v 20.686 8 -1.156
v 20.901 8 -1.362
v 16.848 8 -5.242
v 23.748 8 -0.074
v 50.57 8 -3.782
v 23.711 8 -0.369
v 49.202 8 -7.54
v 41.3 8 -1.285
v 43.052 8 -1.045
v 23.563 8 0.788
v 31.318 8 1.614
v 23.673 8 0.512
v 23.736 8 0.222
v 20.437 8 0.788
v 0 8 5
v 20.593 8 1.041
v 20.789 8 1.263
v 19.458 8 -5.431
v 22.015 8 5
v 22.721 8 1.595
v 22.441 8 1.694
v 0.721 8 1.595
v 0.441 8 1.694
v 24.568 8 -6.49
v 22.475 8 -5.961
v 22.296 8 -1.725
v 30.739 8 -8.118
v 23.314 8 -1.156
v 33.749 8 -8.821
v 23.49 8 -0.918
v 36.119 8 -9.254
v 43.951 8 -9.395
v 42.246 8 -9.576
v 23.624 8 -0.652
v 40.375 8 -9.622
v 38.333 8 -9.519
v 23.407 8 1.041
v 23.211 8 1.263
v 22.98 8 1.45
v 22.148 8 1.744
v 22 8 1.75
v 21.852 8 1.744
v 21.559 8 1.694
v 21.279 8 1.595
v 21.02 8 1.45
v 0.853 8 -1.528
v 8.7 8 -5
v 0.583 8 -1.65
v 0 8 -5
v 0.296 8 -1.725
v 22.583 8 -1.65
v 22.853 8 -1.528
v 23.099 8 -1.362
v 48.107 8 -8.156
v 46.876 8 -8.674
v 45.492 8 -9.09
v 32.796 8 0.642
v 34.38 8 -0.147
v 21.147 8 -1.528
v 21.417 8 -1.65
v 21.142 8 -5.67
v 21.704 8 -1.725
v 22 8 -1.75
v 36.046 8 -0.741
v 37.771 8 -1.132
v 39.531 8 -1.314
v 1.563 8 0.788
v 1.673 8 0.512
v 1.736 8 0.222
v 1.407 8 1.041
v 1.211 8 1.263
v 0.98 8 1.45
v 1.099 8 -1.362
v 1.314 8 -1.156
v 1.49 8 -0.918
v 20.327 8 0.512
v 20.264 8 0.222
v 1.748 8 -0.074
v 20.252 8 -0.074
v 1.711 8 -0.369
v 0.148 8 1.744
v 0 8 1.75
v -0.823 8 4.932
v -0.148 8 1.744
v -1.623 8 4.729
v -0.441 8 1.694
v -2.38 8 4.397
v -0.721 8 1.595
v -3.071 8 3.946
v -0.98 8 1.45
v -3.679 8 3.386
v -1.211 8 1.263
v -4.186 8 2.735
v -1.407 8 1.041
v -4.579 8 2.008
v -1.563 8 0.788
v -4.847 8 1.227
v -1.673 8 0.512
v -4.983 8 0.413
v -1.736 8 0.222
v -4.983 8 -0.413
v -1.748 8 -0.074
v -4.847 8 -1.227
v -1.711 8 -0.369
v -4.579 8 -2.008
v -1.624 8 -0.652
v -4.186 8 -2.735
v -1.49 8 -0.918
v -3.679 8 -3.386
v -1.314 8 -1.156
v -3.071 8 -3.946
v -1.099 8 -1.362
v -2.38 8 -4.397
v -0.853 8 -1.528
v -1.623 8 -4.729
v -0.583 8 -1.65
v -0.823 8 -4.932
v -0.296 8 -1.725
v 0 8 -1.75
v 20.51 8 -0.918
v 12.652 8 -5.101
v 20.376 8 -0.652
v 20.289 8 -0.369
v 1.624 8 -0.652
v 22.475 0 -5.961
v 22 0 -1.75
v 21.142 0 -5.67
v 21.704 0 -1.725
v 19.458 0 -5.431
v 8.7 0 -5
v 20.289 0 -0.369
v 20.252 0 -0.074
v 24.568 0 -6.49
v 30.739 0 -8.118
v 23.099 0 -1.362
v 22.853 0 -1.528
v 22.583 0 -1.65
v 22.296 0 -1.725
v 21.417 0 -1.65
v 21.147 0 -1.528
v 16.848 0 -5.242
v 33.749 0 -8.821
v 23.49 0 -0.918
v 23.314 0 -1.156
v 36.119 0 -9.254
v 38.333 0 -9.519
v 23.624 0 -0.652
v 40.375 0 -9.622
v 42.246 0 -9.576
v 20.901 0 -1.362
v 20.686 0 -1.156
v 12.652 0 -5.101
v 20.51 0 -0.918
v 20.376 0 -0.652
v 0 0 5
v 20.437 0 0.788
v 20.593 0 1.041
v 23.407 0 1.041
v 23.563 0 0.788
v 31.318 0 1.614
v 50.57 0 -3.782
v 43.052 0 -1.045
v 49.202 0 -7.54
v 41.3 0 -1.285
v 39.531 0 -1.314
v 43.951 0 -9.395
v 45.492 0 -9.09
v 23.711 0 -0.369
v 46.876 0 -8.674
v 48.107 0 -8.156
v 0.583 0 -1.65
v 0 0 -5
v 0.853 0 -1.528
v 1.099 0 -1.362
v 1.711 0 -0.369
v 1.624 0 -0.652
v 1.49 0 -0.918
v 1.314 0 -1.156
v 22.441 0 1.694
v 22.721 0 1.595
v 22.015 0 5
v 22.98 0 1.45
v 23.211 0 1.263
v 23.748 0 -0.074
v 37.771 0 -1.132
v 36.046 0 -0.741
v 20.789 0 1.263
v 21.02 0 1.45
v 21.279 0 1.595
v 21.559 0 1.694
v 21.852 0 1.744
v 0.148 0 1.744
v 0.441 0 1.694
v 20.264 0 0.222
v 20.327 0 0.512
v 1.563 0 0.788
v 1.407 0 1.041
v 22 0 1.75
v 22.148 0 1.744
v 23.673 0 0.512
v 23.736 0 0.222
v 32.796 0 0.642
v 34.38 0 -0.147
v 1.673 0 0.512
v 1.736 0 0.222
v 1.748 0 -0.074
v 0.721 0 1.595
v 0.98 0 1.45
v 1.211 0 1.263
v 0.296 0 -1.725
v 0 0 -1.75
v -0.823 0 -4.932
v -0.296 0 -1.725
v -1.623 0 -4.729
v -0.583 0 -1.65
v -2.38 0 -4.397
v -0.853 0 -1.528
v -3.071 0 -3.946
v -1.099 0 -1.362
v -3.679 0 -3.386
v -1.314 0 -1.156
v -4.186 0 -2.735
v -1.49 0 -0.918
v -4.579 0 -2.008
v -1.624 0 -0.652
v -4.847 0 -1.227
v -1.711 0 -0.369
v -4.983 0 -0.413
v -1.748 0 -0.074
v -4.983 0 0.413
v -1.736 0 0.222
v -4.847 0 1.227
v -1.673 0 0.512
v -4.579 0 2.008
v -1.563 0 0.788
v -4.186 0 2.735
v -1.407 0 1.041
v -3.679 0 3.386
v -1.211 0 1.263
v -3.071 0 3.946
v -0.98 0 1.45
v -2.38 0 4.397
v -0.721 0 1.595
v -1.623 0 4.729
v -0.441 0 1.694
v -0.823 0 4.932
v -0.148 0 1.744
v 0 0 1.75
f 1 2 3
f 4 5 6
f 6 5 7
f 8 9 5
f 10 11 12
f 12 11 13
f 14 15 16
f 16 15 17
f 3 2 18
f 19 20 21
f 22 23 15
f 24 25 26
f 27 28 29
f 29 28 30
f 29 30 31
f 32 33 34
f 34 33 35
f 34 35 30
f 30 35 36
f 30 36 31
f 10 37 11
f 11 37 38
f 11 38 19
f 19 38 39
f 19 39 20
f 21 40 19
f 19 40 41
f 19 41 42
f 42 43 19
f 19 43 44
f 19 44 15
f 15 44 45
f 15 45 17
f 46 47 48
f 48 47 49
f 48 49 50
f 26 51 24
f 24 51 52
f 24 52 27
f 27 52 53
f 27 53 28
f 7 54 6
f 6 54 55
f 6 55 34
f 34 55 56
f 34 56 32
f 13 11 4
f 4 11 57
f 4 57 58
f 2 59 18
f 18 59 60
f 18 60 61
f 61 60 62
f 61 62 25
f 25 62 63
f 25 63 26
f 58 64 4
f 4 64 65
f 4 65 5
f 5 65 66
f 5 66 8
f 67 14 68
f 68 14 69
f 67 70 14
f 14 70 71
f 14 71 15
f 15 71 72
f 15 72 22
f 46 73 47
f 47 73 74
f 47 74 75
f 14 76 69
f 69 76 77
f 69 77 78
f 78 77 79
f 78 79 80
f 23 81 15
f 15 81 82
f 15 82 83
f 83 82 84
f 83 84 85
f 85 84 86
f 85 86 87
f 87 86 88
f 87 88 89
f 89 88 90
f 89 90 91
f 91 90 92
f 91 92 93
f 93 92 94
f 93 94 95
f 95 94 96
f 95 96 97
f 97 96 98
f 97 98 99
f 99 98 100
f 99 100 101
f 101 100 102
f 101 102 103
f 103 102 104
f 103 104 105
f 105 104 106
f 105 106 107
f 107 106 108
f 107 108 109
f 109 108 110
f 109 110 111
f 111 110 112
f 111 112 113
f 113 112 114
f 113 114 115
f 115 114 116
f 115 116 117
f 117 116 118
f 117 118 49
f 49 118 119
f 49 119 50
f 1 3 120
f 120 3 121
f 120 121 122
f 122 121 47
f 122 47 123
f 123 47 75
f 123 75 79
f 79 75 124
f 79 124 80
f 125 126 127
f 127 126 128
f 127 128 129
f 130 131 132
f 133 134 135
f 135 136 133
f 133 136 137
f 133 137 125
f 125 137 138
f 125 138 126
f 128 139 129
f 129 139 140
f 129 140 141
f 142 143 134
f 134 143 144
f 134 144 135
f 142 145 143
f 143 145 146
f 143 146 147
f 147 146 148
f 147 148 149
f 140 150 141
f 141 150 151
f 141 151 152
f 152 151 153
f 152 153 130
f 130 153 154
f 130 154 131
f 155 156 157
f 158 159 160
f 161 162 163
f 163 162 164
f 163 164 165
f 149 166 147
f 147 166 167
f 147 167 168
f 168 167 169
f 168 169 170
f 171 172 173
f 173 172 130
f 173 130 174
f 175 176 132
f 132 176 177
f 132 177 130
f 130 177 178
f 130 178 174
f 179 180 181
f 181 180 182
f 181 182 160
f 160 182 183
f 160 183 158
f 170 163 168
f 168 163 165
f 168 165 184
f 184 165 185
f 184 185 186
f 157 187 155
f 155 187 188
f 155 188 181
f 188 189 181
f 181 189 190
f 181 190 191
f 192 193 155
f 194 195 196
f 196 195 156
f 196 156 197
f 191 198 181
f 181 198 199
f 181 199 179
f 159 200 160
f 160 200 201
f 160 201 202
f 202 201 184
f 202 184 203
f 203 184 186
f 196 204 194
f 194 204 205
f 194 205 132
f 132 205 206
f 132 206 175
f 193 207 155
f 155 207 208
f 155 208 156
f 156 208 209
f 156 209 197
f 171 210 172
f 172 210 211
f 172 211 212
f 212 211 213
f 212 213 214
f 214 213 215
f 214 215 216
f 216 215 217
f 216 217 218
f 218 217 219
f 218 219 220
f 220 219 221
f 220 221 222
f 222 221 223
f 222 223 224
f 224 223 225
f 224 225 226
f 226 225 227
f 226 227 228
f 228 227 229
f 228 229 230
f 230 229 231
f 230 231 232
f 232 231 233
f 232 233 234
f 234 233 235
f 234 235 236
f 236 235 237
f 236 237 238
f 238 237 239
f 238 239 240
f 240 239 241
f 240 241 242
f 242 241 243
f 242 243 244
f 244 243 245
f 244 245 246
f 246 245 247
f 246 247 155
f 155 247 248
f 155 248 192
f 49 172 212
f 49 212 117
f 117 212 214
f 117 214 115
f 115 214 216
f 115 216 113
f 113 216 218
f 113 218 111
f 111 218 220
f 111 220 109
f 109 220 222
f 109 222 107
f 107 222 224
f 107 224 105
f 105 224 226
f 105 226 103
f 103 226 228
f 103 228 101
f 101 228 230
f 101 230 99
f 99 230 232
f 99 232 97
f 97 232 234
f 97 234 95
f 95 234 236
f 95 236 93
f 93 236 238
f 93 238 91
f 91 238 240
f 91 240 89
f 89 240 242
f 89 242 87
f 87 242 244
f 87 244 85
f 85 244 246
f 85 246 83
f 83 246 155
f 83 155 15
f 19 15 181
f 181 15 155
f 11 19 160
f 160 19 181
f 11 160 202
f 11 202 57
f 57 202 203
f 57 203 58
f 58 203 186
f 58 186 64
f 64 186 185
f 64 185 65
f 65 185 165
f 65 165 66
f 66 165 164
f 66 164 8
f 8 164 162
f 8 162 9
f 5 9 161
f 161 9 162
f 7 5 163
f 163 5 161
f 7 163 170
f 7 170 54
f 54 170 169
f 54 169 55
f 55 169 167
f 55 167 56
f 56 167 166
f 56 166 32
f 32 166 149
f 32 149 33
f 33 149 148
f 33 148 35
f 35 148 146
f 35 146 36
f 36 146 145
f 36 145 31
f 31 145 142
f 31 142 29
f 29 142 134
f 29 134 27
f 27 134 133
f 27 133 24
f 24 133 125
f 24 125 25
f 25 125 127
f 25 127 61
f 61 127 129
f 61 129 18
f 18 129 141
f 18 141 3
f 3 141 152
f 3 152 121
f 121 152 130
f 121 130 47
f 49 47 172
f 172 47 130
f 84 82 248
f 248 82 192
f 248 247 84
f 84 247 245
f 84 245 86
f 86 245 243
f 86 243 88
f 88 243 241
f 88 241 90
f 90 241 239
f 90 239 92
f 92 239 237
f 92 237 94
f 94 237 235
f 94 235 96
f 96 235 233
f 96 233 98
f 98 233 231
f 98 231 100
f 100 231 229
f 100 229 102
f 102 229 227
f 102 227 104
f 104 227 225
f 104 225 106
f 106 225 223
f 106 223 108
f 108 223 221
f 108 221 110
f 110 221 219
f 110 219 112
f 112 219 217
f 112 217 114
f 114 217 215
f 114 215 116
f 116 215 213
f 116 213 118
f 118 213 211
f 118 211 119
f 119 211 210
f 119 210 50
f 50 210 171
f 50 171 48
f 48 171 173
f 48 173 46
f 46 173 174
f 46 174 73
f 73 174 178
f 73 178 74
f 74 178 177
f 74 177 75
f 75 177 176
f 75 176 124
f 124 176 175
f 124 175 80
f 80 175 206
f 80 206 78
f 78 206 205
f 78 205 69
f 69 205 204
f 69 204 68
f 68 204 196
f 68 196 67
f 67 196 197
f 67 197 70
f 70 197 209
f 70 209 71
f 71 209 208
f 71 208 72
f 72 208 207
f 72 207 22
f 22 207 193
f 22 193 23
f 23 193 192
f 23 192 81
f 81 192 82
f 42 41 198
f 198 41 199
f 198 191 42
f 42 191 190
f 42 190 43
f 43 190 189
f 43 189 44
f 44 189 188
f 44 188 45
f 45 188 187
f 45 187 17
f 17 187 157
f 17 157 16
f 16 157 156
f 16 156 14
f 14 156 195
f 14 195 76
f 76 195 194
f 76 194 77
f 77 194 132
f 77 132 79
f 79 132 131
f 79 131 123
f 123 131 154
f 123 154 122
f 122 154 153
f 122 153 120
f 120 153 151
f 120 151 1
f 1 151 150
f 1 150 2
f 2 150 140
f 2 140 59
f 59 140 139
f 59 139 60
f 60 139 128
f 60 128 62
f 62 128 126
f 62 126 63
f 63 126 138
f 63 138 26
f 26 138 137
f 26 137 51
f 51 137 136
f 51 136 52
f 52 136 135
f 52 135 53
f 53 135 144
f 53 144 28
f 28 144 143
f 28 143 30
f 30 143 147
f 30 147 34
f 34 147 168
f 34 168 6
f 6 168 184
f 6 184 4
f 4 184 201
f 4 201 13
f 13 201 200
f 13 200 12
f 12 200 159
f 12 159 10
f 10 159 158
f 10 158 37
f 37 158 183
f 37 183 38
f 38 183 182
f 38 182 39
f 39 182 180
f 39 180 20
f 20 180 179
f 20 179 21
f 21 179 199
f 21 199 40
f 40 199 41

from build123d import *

# Parameters (mm, degrees)
IZIM1_R                     = 1.75
Y_KSEKLIK_EKSTR_ZYON1_DEPTH = 8


with BuildPart() as part:
    # Çizim1 → Yükseklik-Ekstrüzyon1 (new body)
    with BuildSketch(Plane(origin=(0, 0, 0), x_dir=(1, 0, 0), z_dir=(0, 1, 0))):
        with BuildLine():
            Line((0, -5), (22.015471808, -5))
            Line((22.015471808, -5), (31.318428753, -1.614000581))
            ThreePointArc((31.318428753, -1.614000581), (36.902874651, 0.961864866), (43.052194332, 1.045448688))
            Line((43.052194332, 1.045448688), (50.569735298, 3.781609835))
            Line((50.569735298, 3.781609835), (49.201654725, 7.540380318))
            add(Edge.make_bspline(
                [(8.7, 5), (11.831247013, 5.113252489), (19.015332027, 5.113410941), (26.701598214, 6.99026184), (30.566336288, 8.165203324), (40.878358811, 10.31583972), (46.259505748, 9.441547417), (49.201654725, 7.540380318)],
                knots=[0, 0, 0, 0, 0.110725447, 0.152620834, 0.389361308, 0.477058481, 1, 1, 1, 1], degree=3))
            Line((8.7, 5), (0, 5))
            ThreePointArc((0, 5), (-5, 0), (0, -5))
        make_face()
        Circle(IZIM1_R, mode=Mode.SUBTRACT)
        with Locations((22, 0)):
            Circle(IZIM1_R, mode=Mode.SUBTRACT)
    extrude(amount=Y_KSEKLIK_EKSTR_ZYON1_DEPTH)


solid = part.part
